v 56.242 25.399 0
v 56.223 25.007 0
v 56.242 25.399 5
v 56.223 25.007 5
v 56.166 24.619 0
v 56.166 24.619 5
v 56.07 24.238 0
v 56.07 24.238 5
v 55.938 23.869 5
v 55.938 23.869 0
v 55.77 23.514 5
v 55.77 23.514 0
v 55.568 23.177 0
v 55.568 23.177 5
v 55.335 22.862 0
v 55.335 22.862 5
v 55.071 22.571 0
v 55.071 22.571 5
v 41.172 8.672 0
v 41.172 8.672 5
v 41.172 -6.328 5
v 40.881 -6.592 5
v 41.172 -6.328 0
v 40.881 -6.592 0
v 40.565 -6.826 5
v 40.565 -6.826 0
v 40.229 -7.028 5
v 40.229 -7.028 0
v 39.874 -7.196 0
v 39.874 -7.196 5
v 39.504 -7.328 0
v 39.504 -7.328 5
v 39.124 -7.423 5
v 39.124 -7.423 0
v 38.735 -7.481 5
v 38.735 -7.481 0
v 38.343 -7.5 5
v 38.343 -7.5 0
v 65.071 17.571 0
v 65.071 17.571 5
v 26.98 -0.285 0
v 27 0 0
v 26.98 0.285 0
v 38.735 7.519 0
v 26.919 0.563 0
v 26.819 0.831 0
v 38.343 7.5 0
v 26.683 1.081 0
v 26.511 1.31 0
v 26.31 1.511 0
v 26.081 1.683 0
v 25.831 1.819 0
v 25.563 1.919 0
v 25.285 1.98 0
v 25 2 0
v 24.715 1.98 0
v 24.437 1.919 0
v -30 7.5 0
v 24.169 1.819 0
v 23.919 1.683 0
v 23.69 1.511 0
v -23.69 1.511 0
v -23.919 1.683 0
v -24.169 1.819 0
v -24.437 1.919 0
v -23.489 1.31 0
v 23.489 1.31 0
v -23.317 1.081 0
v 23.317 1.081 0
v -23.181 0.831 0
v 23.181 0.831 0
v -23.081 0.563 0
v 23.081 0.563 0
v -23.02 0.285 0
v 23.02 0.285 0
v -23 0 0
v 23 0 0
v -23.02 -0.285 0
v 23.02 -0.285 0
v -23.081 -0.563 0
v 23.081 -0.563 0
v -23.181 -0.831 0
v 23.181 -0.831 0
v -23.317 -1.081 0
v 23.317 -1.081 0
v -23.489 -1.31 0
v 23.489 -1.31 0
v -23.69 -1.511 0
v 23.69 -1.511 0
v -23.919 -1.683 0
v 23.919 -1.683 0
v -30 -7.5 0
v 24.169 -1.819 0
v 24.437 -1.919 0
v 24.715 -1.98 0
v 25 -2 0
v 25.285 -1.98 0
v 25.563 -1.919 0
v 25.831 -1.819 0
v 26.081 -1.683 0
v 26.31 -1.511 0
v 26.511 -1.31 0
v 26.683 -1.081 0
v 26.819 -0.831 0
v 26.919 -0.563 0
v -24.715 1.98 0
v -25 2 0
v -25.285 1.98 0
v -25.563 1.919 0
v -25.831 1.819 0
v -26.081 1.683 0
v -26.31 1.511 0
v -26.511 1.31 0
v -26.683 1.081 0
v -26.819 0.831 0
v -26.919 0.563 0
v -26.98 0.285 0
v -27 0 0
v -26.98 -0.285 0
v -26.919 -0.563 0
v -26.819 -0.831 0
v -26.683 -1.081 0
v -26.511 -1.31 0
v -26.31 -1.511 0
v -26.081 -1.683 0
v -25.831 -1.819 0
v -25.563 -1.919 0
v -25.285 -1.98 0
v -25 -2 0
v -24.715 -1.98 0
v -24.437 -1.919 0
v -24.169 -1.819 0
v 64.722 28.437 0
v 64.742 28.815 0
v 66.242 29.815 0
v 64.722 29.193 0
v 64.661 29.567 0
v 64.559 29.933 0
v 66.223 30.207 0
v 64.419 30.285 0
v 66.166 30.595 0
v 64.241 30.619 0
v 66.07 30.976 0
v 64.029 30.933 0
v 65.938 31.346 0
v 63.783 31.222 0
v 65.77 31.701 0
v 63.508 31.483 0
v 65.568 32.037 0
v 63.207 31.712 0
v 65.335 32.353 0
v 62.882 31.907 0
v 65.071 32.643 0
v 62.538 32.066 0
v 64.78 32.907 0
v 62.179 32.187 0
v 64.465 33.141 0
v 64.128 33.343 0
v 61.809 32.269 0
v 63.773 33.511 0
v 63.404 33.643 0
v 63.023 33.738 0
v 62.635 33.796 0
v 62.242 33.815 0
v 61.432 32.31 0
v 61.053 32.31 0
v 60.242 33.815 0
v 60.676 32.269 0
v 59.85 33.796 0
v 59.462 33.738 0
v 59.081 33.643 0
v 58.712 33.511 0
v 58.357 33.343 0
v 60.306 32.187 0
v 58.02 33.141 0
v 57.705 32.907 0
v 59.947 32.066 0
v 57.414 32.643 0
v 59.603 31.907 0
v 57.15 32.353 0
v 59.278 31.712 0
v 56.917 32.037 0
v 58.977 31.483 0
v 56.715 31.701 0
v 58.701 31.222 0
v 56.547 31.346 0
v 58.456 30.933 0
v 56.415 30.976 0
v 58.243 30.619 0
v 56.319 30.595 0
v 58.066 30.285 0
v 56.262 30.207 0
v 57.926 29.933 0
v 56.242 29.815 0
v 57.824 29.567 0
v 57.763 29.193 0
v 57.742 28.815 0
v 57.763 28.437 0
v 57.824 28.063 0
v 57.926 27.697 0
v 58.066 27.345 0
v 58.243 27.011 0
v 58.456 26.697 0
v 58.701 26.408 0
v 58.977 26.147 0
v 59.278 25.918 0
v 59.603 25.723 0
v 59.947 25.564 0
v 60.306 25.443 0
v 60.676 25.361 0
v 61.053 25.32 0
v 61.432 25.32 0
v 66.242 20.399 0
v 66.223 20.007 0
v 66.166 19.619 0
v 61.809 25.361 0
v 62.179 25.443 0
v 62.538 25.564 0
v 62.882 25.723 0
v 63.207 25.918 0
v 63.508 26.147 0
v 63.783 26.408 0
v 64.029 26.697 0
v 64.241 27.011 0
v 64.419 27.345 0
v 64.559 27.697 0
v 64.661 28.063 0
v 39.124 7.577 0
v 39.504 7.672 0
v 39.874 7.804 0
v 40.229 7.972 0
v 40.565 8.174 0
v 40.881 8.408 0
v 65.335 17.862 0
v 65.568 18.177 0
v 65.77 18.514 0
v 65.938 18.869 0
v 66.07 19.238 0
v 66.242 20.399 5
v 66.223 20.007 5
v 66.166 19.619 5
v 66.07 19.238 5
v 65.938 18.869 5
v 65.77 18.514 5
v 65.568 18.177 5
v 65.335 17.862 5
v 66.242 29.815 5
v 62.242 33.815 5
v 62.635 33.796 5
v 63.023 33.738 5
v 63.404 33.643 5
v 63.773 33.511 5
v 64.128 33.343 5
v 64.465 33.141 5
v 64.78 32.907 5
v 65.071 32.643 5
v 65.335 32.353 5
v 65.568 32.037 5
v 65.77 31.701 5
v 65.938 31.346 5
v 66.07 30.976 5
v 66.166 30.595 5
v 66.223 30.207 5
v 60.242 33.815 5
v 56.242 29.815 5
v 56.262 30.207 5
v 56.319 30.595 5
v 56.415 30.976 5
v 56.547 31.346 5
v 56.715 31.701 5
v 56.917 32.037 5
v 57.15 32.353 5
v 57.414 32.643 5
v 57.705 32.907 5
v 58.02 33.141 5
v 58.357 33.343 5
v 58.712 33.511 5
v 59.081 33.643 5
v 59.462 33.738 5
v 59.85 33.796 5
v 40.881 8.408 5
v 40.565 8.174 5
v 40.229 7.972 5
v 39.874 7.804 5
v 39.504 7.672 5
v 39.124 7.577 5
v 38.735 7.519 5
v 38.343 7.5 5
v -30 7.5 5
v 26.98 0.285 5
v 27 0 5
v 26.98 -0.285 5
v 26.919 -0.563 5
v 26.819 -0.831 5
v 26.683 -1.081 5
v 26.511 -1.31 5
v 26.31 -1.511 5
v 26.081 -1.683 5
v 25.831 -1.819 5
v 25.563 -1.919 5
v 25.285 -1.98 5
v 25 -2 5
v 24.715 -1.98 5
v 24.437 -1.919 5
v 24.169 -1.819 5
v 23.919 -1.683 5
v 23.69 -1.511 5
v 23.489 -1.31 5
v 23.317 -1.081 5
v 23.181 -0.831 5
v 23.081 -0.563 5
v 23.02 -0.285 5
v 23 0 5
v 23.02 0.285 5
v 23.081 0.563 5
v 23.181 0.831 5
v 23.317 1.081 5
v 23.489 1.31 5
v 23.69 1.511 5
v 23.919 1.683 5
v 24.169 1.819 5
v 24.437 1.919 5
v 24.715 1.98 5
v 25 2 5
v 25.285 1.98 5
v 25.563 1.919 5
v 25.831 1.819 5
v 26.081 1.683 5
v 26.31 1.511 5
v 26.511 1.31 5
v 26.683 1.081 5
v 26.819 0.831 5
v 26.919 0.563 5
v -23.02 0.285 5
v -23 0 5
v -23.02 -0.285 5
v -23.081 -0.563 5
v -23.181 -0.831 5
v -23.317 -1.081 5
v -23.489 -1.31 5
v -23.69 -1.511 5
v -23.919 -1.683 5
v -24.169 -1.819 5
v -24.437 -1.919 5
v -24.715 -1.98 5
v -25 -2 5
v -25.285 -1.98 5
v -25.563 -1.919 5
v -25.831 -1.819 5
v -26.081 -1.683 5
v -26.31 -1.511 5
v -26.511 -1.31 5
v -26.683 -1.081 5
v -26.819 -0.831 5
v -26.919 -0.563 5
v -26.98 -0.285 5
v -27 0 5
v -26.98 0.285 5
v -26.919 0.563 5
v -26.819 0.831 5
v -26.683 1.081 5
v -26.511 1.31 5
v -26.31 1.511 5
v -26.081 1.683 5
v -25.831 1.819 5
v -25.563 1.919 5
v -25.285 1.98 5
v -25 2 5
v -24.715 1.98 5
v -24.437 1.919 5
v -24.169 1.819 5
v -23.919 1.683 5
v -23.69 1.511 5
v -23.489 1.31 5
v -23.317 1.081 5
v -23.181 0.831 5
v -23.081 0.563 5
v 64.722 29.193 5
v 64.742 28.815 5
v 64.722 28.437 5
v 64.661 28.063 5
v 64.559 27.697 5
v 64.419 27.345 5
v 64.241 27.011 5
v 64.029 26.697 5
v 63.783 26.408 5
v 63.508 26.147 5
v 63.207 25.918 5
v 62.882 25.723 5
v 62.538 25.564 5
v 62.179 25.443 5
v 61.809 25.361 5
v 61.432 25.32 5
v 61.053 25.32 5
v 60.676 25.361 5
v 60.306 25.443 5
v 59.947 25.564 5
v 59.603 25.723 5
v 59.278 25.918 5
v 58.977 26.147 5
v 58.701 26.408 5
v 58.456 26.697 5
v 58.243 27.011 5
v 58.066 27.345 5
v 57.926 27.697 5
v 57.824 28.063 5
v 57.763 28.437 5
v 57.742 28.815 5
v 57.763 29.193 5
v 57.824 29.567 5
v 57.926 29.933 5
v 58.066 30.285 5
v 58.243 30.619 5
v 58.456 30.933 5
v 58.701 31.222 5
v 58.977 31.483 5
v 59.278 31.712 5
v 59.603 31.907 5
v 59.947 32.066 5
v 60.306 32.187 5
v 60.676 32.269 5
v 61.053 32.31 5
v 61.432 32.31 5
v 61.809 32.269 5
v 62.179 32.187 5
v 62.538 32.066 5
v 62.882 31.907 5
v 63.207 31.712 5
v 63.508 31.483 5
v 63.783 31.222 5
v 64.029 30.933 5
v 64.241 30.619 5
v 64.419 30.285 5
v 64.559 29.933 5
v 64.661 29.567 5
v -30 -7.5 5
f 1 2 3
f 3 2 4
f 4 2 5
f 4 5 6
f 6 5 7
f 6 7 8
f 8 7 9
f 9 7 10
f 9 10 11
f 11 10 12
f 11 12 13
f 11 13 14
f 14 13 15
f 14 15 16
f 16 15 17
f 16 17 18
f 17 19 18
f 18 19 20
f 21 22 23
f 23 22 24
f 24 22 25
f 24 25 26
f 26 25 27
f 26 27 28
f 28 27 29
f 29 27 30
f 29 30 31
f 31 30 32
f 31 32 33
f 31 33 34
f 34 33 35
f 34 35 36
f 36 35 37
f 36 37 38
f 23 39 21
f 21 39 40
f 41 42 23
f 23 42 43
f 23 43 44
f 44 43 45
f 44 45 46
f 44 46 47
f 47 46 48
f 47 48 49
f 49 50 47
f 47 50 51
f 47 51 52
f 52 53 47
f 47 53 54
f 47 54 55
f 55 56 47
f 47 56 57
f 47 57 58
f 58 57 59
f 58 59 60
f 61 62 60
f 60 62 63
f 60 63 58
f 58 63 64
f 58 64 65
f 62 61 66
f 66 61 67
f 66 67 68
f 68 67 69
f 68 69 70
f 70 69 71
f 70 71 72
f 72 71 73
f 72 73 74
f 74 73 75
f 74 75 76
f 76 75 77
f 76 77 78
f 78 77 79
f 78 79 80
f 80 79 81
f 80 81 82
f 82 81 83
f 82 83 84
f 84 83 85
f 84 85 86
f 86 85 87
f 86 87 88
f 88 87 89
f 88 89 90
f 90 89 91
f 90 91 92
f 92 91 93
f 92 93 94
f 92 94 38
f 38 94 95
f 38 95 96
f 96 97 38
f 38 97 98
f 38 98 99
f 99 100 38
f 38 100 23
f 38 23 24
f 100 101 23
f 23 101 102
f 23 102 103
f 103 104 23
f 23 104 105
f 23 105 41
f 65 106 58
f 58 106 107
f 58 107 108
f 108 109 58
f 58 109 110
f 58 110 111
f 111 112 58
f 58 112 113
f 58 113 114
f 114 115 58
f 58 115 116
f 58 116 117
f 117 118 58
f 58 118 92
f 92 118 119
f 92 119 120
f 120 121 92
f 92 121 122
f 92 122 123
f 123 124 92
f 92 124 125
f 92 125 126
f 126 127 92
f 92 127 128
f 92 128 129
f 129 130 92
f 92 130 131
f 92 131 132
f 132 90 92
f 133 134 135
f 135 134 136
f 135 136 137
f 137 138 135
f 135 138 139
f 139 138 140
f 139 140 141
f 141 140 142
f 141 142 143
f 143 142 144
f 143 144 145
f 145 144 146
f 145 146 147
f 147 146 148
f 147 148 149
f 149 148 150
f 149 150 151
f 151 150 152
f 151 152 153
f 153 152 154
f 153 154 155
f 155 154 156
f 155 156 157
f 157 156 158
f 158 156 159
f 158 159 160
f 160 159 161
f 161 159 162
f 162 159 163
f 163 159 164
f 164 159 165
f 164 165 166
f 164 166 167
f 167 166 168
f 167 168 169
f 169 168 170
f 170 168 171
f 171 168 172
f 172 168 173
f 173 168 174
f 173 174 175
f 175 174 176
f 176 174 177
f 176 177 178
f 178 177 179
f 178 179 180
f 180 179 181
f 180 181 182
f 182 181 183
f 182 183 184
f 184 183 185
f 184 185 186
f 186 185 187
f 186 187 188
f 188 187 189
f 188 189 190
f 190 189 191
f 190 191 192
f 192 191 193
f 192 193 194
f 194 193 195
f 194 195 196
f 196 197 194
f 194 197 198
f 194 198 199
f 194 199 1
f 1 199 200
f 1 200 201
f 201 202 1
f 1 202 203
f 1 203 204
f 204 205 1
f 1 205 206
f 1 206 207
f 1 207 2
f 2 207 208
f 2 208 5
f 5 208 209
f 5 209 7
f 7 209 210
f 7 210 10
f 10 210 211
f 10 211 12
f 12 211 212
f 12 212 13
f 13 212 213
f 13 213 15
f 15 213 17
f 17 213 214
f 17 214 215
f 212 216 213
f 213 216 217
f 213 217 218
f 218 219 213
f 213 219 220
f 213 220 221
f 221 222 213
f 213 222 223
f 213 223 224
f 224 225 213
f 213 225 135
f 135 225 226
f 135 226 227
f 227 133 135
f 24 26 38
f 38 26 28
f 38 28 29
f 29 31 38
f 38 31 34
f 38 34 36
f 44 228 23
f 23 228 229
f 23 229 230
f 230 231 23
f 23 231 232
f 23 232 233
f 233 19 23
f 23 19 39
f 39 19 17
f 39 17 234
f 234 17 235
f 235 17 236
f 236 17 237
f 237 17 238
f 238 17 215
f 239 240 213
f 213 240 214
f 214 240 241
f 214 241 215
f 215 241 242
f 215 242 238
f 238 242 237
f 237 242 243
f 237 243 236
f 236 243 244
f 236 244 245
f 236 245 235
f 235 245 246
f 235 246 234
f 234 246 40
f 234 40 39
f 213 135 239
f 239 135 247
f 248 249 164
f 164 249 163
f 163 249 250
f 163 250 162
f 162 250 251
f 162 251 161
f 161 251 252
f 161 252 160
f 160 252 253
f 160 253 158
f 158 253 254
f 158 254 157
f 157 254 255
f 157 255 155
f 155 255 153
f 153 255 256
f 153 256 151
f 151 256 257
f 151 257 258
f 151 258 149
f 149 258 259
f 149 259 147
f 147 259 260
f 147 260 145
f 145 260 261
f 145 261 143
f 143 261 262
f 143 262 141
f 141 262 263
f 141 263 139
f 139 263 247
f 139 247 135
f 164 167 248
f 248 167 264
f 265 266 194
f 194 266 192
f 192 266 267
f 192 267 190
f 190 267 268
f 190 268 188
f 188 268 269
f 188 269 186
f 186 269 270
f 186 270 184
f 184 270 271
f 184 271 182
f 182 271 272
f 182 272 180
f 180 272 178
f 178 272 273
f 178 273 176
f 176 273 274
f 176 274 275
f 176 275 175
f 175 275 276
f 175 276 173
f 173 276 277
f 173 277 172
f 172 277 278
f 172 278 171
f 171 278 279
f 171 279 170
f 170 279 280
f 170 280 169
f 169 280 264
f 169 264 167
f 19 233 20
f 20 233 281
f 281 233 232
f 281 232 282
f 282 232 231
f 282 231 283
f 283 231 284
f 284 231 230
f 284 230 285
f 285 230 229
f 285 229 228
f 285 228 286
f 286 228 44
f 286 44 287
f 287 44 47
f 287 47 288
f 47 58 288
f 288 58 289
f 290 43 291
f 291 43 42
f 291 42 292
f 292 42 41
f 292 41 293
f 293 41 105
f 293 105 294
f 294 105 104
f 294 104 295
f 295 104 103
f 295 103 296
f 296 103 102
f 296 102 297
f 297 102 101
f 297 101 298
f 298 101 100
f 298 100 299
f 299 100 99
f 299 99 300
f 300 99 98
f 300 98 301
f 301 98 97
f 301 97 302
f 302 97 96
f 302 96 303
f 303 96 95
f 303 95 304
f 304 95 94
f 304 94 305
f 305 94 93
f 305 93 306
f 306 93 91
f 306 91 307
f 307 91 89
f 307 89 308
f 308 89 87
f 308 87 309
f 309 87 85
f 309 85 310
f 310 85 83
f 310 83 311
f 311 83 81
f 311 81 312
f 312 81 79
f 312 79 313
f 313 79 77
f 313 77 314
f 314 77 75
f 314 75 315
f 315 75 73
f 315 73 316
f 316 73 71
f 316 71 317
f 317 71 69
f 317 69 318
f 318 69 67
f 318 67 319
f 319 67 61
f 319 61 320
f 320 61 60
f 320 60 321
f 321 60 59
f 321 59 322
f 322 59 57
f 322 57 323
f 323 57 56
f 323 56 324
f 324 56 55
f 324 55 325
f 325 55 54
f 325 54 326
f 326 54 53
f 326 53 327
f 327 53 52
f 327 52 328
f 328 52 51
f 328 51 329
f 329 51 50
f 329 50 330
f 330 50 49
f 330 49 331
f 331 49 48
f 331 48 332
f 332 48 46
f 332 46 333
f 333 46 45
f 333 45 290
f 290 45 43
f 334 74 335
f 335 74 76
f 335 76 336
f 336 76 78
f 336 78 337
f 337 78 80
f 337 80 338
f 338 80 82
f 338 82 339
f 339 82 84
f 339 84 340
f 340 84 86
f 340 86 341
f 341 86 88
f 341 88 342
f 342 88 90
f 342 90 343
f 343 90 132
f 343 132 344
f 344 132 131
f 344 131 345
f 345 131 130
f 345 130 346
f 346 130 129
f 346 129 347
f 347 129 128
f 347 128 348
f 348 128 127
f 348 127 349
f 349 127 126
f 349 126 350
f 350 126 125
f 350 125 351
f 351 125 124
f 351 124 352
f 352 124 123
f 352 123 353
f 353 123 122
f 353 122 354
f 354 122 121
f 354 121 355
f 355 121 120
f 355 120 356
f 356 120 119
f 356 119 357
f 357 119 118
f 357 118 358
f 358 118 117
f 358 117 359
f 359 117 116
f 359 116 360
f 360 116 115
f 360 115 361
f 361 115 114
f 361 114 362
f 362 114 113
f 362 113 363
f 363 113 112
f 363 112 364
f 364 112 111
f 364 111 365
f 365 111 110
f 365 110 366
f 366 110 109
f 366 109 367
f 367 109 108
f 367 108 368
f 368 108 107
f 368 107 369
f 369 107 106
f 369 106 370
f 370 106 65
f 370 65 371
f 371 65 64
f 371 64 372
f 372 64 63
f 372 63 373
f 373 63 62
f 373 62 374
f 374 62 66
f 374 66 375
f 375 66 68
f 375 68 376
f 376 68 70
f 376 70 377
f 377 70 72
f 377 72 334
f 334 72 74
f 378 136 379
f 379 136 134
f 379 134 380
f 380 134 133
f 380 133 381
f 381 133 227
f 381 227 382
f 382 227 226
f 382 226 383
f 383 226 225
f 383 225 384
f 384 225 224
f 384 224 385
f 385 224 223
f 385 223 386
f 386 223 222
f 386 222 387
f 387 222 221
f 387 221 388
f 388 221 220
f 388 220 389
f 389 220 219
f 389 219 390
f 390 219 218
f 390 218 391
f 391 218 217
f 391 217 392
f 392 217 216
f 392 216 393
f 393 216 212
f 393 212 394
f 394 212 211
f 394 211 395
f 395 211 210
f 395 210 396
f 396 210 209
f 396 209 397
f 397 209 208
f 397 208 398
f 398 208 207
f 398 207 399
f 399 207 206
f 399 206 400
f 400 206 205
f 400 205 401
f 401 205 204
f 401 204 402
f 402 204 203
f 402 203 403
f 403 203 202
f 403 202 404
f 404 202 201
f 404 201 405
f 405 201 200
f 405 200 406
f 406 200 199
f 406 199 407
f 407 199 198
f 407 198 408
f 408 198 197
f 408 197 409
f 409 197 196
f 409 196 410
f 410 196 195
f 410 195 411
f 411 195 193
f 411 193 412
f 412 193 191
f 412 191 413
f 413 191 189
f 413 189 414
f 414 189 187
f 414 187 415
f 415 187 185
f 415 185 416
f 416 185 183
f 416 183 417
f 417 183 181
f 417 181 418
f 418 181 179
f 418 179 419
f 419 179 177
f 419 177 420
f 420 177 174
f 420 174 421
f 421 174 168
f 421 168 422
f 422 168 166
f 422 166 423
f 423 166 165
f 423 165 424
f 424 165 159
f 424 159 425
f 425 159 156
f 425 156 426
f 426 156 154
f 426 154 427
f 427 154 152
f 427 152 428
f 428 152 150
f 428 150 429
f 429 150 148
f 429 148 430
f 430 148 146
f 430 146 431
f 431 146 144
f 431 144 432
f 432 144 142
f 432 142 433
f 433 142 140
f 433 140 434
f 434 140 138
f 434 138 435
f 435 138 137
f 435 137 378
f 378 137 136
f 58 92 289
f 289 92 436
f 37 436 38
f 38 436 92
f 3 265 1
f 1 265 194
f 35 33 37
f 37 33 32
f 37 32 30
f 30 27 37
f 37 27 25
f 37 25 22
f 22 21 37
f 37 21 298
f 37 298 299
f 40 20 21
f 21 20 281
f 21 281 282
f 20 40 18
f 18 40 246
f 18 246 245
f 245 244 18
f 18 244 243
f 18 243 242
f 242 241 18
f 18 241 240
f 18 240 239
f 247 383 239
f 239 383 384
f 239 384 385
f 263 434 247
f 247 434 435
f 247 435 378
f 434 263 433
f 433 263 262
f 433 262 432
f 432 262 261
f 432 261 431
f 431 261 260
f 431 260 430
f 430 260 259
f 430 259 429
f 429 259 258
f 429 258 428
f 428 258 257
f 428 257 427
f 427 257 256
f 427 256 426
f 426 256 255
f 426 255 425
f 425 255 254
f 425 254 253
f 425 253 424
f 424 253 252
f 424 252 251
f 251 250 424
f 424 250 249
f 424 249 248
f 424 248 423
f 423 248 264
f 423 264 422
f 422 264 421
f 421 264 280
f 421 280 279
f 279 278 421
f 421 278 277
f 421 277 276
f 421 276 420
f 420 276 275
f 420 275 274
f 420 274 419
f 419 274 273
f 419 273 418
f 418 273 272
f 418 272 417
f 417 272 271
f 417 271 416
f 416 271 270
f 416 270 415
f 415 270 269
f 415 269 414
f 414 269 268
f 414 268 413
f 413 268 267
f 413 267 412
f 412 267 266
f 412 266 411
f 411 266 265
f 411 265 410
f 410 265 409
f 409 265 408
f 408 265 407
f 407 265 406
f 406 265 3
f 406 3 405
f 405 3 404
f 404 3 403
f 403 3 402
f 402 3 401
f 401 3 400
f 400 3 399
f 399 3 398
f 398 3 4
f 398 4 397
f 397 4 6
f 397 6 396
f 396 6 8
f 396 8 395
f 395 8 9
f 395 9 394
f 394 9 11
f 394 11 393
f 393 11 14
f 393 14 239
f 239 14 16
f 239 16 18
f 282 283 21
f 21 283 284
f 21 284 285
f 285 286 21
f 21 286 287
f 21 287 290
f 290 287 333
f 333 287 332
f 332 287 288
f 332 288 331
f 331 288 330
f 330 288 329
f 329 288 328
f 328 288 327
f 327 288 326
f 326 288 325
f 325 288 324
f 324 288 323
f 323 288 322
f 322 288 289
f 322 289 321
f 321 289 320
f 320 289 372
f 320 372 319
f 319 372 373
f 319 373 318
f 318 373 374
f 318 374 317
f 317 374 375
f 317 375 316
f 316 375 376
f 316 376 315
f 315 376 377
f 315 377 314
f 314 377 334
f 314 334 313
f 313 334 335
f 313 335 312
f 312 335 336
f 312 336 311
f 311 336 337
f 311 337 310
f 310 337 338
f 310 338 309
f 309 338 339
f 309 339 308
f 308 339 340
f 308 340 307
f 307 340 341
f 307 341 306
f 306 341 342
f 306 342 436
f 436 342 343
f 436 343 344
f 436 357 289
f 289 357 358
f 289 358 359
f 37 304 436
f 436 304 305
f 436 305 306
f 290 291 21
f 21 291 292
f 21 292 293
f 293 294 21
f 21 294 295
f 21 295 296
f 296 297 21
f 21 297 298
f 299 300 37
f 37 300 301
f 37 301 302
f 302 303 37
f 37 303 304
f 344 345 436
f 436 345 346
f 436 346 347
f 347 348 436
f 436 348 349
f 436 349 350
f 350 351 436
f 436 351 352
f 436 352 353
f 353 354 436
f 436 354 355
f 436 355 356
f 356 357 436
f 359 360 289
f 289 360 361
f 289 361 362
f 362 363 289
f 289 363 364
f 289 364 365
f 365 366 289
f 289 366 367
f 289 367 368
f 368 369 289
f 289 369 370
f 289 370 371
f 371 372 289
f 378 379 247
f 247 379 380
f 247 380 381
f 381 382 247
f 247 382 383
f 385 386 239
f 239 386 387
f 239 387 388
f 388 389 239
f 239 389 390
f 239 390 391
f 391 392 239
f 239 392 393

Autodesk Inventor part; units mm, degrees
ref_plane "YZ Plane" through (0, 0, 0) normal (1, 0, 0) x (0, 1, 0)
ref_plane "XZ Plane" through (0, 0, 0) normal (0, 1, 0) x (-1, 0, 0)
ref_plane "XY Plane" through (0, 0, 0) normal (0, 0, 1) x (1, 0, 0)
ref_plane "Work Plane1" through (0, 0, 0) normal (0, 0, 1) x (1, 0, 0)
sketch "Sketch1" plane through (0, 0, 0) normal (0, 0, 1) x (1, 0, 0)
  line L0 (28, 30) -> (30, 28) construction
  line L1 (28, 30) -> (-28, 30) construction
  line L2 (-30, 28) -> (-28, 30) construction
  line L3 (-30, 28) -> (-30, -28) construction
  line L4 (-28, -30) -> (-30, -28) construction
  line L5 (-28, -30) -> (28, -30) construction
  line L6 (30, -28) -> (28, -30) construction
  line L7 (30, -28) -> (30, 28) construction
  circle A0 centre (25, 0) radius 1.3 construction
  circle A1 centre (-25, 0) radius 1.3 construction
  circle A2 centre (0, 0) radius 7.5 construction
  line L8 (-30, -7.5) -> (40, -7.5)
  line L9 (40, -7.5) -> (40, 7.5)
  line L10 (40, 7.5) -> (-30, 7.5)
  line L11 (-30, 7.5) -> (-30, -7.5)
  line L12 (40, -7.5) -> (66.2425, 18.7425)
  line L13 (40, -7.5) -> (77.1125, -7.5) construction
  line L14 (66.2425, 18.7425) -> (66.2425, 27.2511)
  line L15 (40, 7.5) -> (56.2425, 23.7425)
  line L16 (40, 7.5) -> (62.9703, 7.5) construction
  line L17 (56.2425, 23.7425) -> (56.2425, 27.2511)
  line L18 (66.2425, 27.2511) -> (66.2425, 33.815)
  line L19 (66.2425, 33.815) -> (56.2425, 33.815)
  line L20 (56.2425, 33.815) -> (56.2425, 27.2511)
  circle A3 centre (-25, 0) radius 2
  circle A4 centre (25, 0) radius 2
  circle A5 centre (61.2425, 28.815) radius 3.5
  line L21 (79.415, 27.3813) -> (49.415, 27.3813) construction
  line L22 (79.415, 30.2423) -> (49.415, 30.2423) construction
  line L23 (62.6454, 27.3813) -> (62.6454, -21.1882) construction
  line L24 (59.7845, 27.3813) -> (59.7845, -21.1882) construction
  point P0 (0, 0)
  dimension "d0" = 70
  dimension "d1" = 45
  dimension "d2" = 45
  dimension "d3" = 10
  dimension "d4" = 15
  dimension "d5" = 7.5
  dimension "d7" = 4
  dimension "d8" = 4
  dimension "d11" = 7
  dimension "d12" = 5
  dimension "d13" = 5
extrude "Extrusion1" add sketch "Sketch1" along normal blind 5
fillet "Fillet1" radius 4 6 edges at (40, 7.5, 2.5) (56.2425, 33.815, 2.5) (66.2425, 33.815, 2.5) (66.2425, 18.7425, 2.5) (40, -7.5, 2.5) (56.2425, 23.7425, 2.5)
properties part number "10_MiniSPIM_Sampleholder"
